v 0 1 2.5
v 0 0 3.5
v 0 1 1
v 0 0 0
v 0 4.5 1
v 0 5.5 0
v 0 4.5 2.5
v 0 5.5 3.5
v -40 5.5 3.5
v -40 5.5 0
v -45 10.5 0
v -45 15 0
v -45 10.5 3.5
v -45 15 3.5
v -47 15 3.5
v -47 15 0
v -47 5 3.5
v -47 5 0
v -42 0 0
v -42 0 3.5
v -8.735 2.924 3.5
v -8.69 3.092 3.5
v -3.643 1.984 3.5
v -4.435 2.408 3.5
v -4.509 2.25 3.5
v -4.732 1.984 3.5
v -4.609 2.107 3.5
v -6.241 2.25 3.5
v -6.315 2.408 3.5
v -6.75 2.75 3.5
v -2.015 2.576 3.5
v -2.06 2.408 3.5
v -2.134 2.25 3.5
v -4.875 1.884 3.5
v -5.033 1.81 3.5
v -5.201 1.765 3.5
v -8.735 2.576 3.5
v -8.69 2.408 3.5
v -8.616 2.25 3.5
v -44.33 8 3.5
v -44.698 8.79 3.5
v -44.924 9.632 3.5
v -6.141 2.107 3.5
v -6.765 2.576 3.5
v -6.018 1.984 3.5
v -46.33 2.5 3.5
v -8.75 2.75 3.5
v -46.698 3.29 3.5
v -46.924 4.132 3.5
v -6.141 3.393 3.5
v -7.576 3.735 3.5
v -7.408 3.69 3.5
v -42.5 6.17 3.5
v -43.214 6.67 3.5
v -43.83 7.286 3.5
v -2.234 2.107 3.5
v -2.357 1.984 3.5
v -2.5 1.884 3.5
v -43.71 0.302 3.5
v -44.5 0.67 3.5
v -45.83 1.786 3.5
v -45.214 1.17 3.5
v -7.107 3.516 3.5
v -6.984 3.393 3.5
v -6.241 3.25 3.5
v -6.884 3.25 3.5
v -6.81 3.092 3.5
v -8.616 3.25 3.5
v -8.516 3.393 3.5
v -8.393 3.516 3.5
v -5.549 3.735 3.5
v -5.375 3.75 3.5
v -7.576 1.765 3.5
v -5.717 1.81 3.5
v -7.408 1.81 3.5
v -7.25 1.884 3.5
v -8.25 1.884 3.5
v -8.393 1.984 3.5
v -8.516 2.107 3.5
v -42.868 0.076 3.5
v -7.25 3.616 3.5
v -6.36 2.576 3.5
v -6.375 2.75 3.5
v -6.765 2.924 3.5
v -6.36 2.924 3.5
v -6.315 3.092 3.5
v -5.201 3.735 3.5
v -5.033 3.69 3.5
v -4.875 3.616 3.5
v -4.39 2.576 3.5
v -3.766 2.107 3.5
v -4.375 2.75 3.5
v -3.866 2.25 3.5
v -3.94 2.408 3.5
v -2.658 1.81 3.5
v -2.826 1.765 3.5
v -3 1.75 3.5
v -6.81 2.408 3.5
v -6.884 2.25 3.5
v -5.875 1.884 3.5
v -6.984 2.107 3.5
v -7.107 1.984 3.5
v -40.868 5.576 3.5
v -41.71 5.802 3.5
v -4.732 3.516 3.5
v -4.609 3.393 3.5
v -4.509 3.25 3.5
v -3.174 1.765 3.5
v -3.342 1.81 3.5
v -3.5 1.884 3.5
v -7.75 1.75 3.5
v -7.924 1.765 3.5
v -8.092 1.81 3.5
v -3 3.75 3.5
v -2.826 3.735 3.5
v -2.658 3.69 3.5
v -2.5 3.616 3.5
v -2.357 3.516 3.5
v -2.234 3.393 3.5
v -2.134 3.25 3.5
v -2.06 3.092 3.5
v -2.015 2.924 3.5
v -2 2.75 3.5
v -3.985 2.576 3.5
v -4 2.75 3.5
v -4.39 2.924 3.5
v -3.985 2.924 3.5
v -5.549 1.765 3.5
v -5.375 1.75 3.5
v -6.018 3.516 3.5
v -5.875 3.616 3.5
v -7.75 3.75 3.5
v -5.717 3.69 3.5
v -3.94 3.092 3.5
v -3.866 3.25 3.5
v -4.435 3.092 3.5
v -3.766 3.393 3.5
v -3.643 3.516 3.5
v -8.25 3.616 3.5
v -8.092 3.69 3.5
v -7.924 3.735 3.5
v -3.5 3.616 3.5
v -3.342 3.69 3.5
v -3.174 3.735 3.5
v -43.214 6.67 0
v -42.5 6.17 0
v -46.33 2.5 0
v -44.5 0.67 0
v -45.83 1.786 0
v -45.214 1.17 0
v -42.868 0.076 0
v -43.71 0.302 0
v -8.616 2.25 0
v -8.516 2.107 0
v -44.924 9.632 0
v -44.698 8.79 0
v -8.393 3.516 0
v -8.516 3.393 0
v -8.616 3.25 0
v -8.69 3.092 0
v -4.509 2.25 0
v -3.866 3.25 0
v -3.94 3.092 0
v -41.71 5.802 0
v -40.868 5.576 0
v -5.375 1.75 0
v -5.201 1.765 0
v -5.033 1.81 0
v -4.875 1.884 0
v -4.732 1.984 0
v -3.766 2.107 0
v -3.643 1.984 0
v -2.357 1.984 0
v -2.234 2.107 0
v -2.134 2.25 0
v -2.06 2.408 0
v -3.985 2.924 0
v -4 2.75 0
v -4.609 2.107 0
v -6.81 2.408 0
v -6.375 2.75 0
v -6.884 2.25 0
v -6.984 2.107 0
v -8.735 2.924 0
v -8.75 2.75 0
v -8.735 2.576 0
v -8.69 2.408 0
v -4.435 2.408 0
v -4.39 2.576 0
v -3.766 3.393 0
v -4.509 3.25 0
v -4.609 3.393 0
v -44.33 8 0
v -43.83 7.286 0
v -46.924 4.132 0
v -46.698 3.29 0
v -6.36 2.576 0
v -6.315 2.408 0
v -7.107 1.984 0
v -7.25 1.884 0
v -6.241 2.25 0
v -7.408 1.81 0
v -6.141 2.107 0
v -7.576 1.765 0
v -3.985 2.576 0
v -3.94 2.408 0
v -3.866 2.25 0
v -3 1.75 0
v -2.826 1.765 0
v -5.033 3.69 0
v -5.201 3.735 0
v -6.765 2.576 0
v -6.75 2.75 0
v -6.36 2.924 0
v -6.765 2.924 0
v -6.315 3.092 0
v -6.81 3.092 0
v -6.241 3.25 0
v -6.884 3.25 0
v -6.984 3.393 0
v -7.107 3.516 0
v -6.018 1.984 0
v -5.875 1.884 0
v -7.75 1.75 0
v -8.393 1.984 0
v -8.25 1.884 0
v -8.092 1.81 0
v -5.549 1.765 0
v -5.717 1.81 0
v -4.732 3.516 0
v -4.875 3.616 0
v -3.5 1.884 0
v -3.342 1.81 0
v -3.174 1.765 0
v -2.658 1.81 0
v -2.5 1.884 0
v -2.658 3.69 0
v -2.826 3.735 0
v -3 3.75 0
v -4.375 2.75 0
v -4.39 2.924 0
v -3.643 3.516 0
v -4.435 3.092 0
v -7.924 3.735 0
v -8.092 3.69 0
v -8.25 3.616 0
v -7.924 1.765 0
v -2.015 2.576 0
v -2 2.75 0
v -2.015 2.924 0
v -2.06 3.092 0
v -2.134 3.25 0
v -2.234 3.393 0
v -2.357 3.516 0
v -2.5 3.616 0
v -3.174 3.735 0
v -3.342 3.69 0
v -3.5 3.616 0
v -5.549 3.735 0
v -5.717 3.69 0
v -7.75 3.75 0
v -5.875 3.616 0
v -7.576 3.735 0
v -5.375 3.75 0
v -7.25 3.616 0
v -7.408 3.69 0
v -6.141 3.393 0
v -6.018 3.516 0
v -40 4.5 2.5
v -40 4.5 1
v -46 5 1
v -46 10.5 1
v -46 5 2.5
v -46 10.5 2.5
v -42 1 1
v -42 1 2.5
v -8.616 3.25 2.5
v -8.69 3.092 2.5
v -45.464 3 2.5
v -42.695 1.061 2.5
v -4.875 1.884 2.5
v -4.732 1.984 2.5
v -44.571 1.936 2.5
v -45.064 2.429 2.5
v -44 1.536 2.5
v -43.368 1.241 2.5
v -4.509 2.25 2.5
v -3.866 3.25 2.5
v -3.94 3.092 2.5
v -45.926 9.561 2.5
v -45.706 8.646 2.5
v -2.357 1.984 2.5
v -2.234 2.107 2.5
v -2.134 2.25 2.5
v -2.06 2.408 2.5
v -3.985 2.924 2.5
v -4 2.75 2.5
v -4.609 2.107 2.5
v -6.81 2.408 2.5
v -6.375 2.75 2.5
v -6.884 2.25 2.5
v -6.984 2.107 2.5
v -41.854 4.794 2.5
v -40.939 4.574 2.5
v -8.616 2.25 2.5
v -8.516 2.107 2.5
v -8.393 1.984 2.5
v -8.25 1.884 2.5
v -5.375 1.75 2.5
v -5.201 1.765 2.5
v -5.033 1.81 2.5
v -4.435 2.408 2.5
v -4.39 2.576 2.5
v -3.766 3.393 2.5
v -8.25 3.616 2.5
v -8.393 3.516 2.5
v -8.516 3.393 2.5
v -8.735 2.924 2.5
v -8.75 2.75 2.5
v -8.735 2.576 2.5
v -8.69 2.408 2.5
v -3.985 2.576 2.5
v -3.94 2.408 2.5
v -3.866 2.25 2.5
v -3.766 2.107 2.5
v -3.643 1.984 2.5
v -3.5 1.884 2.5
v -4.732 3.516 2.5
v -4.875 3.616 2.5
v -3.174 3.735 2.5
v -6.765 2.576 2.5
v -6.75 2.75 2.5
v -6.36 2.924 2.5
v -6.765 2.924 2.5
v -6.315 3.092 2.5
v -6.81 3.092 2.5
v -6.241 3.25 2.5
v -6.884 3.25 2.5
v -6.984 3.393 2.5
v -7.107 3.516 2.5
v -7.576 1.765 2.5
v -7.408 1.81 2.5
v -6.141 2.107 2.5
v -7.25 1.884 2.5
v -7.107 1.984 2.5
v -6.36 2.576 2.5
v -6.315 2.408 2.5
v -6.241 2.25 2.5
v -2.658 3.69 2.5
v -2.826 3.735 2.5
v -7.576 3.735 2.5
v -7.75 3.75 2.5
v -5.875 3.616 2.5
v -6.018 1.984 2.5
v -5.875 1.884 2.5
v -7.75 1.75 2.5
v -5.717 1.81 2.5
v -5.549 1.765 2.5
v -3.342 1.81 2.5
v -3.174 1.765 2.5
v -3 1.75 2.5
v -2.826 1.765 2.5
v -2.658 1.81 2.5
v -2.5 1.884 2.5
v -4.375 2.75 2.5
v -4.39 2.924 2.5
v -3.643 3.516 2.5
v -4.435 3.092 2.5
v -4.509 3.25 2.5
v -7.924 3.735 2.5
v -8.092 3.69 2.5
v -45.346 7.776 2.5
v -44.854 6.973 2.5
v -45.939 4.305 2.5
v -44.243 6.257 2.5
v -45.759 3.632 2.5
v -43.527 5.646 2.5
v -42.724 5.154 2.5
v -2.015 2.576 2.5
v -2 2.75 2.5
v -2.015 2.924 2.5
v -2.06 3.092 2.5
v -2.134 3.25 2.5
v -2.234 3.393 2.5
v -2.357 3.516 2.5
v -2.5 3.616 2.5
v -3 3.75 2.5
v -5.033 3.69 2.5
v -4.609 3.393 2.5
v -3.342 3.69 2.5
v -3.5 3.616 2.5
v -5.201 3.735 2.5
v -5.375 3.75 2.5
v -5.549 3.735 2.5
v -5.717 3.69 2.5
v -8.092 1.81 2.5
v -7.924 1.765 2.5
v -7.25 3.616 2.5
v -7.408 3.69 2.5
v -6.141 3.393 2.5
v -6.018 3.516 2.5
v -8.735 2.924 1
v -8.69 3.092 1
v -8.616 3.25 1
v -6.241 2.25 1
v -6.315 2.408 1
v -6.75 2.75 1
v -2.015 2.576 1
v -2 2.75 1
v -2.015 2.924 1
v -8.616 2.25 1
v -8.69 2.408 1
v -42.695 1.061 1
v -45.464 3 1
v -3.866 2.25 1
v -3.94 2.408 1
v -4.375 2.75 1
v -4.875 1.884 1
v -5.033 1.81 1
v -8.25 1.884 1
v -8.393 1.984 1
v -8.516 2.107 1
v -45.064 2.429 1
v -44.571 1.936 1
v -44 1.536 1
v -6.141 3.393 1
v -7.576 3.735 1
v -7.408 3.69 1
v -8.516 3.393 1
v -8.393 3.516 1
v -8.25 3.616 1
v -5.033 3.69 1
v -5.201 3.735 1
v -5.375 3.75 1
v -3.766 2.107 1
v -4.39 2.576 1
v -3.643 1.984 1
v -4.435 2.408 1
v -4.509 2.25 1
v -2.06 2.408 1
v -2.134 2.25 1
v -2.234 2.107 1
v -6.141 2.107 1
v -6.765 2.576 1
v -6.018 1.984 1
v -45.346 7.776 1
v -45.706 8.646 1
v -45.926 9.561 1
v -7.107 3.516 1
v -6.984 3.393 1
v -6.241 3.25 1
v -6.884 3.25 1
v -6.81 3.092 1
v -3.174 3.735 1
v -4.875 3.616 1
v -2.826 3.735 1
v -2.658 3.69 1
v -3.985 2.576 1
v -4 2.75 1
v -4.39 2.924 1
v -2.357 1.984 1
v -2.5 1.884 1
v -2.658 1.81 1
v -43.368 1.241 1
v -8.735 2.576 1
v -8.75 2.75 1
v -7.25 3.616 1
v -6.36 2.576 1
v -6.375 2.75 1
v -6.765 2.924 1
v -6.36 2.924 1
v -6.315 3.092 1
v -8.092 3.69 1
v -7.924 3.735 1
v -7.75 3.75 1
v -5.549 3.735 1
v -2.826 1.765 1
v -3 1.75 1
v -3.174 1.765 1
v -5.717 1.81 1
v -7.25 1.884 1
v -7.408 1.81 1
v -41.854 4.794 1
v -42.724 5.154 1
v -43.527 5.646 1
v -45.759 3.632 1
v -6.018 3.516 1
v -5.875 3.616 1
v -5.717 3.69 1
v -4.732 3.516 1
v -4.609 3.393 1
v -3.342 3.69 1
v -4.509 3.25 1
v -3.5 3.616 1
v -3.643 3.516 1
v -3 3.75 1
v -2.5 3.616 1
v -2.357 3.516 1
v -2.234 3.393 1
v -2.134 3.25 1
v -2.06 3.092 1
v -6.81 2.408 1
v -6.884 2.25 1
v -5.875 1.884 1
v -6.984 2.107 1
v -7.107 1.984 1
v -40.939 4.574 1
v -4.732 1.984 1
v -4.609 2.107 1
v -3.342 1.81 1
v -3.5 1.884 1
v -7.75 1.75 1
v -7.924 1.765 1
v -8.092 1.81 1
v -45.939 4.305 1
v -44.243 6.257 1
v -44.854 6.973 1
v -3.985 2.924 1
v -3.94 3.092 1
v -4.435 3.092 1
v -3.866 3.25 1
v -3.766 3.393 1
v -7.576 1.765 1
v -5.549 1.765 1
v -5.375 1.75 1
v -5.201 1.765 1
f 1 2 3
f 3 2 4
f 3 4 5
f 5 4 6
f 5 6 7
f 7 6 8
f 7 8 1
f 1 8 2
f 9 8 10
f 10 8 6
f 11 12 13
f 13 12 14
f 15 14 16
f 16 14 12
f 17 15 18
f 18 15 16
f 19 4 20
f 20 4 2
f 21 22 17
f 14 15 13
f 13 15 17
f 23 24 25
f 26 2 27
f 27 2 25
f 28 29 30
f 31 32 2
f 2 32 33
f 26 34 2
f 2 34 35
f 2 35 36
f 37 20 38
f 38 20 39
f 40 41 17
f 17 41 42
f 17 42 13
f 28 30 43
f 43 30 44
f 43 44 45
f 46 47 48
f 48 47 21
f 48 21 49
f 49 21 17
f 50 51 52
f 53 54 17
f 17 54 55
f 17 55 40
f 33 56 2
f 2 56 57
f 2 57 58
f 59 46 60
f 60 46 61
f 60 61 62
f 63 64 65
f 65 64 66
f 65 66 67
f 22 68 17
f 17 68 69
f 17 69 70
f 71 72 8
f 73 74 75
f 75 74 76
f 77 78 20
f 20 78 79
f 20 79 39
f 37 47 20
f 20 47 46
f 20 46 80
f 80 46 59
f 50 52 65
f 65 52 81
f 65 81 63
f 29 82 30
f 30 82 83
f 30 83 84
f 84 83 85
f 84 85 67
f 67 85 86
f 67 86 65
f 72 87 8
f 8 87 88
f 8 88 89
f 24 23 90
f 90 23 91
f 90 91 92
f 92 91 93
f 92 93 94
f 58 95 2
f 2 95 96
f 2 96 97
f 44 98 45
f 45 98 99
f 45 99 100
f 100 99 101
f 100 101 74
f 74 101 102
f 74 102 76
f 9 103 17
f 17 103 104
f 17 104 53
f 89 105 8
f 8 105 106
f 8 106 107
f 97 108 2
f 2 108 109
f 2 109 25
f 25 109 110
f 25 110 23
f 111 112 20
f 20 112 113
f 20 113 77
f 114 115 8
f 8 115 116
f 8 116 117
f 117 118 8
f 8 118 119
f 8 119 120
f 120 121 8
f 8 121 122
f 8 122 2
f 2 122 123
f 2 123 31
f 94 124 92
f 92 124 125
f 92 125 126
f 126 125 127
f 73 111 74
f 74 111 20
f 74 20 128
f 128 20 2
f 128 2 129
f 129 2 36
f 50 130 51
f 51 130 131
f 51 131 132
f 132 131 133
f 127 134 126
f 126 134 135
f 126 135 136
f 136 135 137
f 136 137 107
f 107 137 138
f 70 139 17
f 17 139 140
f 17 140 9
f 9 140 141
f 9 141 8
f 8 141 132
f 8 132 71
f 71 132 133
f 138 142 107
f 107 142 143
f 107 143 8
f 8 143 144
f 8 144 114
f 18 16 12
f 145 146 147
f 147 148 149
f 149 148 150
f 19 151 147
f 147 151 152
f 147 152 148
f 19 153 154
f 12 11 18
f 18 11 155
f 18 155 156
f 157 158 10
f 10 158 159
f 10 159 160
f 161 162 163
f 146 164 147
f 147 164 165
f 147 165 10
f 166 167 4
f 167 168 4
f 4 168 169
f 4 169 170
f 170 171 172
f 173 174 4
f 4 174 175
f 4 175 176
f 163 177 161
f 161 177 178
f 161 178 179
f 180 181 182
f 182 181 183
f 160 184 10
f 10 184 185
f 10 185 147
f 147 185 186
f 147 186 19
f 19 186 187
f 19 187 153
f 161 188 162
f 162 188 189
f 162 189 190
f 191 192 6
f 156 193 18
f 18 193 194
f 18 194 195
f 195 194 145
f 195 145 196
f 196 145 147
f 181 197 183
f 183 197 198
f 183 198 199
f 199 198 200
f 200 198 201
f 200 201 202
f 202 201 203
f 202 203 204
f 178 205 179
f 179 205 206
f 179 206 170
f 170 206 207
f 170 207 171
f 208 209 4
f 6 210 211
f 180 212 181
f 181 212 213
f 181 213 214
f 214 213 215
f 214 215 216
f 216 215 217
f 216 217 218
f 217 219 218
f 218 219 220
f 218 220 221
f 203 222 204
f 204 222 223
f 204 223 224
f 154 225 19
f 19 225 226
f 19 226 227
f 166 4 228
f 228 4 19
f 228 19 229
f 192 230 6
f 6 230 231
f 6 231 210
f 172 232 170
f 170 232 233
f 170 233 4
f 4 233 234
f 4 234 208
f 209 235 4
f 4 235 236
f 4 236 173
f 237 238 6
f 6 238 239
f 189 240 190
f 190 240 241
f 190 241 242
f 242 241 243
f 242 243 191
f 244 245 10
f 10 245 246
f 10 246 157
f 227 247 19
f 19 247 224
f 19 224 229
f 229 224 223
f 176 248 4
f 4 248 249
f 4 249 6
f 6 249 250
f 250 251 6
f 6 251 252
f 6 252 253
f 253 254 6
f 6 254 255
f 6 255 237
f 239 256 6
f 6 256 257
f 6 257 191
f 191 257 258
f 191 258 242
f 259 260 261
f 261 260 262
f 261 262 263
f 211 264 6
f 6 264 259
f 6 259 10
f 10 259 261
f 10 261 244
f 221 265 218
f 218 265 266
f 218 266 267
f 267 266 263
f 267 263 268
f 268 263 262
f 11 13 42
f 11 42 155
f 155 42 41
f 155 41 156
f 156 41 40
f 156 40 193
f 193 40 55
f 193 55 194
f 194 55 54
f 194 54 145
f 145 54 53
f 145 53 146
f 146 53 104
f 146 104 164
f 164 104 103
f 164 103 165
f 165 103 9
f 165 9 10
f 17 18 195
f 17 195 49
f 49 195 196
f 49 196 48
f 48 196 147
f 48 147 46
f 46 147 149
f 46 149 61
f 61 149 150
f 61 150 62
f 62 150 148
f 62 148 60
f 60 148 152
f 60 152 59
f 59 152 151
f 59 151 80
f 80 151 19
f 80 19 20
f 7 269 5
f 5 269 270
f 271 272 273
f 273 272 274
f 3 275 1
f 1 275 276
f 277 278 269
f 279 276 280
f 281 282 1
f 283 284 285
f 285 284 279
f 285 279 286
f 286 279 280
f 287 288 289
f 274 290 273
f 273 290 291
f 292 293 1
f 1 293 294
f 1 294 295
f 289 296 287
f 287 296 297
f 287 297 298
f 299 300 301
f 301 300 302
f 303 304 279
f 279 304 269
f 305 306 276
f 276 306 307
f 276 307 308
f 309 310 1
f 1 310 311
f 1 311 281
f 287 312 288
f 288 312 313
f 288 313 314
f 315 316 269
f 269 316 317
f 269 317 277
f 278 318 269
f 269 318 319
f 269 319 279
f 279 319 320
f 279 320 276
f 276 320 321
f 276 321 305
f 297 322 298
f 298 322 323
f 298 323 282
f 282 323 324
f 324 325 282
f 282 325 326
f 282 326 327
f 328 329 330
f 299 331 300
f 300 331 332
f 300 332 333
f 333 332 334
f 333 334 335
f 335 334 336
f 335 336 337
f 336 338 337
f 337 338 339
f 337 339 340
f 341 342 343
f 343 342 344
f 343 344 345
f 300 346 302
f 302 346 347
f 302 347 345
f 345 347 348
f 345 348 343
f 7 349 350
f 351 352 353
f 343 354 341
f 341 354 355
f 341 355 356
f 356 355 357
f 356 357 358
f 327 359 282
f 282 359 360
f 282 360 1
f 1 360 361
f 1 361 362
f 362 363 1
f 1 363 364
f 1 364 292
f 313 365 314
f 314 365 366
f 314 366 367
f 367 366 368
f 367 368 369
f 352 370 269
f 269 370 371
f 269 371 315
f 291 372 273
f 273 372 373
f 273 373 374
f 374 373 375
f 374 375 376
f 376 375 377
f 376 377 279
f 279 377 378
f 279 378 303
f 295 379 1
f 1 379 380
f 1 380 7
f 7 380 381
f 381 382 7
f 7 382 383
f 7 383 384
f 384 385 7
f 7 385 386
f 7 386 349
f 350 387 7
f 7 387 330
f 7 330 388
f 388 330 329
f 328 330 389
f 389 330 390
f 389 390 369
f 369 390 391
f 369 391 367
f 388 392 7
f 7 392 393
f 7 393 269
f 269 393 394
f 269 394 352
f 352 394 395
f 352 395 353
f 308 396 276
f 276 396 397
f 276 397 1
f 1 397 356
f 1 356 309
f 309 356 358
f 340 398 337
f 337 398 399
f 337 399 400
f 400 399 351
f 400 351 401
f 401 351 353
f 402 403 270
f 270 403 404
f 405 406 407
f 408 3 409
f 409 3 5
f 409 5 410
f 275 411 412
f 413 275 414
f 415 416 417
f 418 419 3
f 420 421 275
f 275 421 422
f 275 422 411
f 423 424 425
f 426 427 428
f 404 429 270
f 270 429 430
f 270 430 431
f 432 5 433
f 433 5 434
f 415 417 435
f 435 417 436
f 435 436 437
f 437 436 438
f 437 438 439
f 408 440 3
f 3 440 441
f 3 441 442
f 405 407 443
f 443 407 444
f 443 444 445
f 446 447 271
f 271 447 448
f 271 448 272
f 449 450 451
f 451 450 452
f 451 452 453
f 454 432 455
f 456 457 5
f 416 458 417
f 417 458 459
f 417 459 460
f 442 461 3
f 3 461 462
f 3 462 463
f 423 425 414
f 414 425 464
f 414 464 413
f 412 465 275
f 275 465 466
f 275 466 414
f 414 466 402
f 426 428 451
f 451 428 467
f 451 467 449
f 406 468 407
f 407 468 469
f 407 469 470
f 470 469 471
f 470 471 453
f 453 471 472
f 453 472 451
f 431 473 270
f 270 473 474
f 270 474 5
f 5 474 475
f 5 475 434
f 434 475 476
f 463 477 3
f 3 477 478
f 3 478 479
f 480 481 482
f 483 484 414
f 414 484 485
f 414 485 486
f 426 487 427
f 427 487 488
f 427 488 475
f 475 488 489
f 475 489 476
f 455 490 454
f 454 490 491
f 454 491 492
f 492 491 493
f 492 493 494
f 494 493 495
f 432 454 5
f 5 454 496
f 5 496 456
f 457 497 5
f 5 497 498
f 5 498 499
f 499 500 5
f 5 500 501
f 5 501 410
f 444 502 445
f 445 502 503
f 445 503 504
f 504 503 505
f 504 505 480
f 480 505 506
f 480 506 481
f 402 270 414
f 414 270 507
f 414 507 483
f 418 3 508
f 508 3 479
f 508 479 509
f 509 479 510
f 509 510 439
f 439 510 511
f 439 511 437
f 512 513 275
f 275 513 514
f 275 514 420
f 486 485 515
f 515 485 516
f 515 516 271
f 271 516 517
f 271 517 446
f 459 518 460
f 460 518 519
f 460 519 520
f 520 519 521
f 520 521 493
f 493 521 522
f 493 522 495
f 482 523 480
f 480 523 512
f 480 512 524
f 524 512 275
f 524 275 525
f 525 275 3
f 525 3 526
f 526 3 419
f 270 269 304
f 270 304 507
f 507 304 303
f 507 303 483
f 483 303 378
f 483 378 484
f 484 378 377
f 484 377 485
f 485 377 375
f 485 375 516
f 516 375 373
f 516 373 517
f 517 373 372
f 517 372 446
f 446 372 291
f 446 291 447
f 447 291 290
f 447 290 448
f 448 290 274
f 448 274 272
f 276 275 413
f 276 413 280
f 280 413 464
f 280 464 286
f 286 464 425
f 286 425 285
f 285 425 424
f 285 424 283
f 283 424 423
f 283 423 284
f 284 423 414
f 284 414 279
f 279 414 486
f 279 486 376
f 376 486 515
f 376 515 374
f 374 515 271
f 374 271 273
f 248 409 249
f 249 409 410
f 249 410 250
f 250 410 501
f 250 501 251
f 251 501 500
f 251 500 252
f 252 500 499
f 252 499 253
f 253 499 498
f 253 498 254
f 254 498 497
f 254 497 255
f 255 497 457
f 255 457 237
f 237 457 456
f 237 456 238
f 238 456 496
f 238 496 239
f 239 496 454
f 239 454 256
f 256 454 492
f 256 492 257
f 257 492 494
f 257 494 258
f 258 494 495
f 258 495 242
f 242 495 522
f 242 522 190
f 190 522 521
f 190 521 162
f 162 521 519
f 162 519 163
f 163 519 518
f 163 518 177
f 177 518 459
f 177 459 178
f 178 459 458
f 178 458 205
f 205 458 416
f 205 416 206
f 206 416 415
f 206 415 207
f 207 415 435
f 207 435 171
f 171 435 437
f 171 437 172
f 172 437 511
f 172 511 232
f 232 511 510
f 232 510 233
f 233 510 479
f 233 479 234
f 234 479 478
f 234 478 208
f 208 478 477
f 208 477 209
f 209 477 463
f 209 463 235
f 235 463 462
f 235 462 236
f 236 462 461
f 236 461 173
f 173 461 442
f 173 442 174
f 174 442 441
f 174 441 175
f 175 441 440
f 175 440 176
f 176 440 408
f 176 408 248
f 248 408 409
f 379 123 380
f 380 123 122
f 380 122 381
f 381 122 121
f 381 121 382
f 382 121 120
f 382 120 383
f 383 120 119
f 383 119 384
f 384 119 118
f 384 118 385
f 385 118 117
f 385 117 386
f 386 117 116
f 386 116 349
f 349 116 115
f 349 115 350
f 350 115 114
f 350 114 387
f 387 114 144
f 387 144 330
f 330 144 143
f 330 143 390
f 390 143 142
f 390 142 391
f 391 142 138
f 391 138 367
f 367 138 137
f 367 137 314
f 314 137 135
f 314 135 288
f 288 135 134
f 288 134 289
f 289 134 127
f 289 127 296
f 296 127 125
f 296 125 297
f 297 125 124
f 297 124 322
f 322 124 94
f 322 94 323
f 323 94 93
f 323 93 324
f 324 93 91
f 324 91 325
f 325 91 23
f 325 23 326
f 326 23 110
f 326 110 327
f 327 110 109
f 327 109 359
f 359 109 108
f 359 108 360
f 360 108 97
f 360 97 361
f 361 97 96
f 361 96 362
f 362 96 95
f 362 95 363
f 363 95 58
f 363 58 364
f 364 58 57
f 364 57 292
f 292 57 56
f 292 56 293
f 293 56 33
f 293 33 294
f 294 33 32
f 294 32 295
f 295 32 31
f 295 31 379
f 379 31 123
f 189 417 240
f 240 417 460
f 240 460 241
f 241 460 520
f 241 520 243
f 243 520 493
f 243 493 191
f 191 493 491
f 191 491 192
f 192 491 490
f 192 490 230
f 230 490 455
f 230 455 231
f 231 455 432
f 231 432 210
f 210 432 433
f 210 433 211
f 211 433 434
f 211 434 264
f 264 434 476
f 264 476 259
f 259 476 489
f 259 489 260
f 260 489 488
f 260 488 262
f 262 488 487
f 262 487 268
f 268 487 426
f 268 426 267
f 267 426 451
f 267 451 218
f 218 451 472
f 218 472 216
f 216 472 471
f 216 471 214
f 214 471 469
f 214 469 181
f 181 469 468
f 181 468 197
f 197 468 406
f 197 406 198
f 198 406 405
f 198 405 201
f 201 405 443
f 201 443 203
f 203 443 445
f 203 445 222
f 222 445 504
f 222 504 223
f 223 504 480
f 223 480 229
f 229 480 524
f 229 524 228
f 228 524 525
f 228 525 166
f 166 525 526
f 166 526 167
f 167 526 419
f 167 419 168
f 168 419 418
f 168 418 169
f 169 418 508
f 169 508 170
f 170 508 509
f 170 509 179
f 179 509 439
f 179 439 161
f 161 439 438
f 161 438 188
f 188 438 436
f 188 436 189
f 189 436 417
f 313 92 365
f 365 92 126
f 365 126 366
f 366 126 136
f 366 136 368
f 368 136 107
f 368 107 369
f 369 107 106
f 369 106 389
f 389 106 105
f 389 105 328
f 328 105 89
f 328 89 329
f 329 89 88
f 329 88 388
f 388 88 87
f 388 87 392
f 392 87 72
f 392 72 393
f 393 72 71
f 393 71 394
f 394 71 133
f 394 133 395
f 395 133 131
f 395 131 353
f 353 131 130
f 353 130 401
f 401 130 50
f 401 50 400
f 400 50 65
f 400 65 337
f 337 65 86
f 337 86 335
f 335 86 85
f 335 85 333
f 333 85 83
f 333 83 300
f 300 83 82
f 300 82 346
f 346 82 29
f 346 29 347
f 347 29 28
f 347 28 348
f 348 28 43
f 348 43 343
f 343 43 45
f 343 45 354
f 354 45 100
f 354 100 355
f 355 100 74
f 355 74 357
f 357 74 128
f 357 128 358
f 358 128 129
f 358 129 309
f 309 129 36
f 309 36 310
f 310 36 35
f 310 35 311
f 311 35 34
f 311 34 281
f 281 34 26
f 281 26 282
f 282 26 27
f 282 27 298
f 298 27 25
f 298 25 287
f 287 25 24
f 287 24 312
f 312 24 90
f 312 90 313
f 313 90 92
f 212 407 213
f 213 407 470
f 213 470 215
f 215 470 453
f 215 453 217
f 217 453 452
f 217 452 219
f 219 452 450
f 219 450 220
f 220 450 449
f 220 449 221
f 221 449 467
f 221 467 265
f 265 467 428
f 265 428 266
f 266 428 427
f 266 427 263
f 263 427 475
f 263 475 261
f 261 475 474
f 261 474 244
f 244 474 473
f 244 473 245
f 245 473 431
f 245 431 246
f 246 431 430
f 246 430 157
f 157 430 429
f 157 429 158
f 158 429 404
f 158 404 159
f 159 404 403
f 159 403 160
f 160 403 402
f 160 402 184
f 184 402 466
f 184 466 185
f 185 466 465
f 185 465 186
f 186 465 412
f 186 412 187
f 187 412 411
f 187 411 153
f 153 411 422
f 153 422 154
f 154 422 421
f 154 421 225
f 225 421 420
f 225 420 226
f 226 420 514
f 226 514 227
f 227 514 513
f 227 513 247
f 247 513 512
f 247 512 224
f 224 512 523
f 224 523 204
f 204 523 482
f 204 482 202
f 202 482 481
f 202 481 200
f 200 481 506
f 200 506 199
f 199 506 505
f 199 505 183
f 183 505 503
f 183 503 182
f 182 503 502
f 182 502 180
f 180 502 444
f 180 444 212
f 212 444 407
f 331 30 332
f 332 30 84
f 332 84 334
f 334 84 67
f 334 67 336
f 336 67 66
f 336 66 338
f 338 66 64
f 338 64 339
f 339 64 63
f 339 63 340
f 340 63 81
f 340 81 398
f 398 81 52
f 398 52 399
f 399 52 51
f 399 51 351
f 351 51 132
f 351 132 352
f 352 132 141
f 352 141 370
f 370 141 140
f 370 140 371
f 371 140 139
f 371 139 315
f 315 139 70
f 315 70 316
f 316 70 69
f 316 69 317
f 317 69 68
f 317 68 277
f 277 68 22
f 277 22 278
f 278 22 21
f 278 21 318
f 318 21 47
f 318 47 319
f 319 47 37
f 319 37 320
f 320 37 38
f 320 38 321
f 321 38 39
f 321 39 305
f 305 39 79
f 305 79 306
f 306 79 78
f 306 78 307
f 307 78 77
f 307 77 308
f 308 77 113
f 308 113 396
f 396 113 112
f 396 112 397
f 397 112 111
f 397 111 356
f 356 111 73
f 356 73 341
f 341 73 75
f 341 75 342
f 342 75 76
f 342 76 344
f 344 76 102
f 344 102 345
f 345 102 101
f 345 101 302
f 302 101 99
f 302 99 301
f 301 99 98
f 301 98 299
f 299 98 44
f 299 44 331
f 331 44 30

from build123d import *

# Parameters (mm, degrees)
BOSS_EXTRUDE1_DEPTH = 3.5
FILLET2_R           = 5
SHELL1_START        = 1
SHELL1_DEPTH        = 1.5
CUT_EXTRUDE1_START  = -3.5
SKETCH2_R           = 1
CUT_EXTRUDE1_DEPTH  = 3.5


# Read off the part's stored shape, not the designer's step: Shell1
with BuildPart() as part:
    # Sketch1 → Boss-Extrude1 (new body)
    with BuildSketch(Plane.XY):
        Polygon((0, 0), (-47, 0), (-47, 15), (-45, 15), (-45, 5.5), (0, 5.5), align=None)
    extrude(amount=BOSS_EXTRUDE1_DEPTH)

    # Fillet2
    fillet2_edges = [part.edges().sort_by_distance(p)[0] for p in [
        (-47, 0, 1.75),
        (-45, 5.5, 1.75),
    ]]
    fillet(fillet2_edges, radius=FILLET2_R)

    # Shell1 outline → Shell1 (cut)
    with BuildSketch(Plane.XY.offset(SHELL1_START)):
        with BuildLine():
            Line((0, 4.5), (-40, 4.5))
            ThreePointArc((-40, 4.5), (-44.242640687, 6.257359313), (-46, 10.5))
            Line((-46, 10.5), (-46, 5))
            ThreePointArc((-46, 5), (-44.828427125, 2.171572875), (-42, 1))
            Line((-42, 1), (0, 1))
            Line((0, 1), (0, 4.5))
        make_face()
    extrude(amount=SHELL1_DEPTH, mode=Mode.SUBTRACT)

    # Sketch2 → Cut-Extrude1 (cut)
    with BuildSketch(Plane.XY.offset(3.5).offset(CUT_EXTRUDE1_START)):
        with Locations(Location((-3, 2.75, 0), (0, 0, 180))):
            Circle(SKETCH2_R)
        with Locations(Location((-5.375, 2.75, 0), (0, 0, 180))):
            Circle(SKETCH2_R)
        with Locations(Location((-7.75, 2.75, 0), (0, 0, 180))):
            Circle(SKETCH2_R)
    extrude(amount=CUT_EXTRUDE1_DEPTH, mode=Mode.SUBTRACT)


solid = part.part
